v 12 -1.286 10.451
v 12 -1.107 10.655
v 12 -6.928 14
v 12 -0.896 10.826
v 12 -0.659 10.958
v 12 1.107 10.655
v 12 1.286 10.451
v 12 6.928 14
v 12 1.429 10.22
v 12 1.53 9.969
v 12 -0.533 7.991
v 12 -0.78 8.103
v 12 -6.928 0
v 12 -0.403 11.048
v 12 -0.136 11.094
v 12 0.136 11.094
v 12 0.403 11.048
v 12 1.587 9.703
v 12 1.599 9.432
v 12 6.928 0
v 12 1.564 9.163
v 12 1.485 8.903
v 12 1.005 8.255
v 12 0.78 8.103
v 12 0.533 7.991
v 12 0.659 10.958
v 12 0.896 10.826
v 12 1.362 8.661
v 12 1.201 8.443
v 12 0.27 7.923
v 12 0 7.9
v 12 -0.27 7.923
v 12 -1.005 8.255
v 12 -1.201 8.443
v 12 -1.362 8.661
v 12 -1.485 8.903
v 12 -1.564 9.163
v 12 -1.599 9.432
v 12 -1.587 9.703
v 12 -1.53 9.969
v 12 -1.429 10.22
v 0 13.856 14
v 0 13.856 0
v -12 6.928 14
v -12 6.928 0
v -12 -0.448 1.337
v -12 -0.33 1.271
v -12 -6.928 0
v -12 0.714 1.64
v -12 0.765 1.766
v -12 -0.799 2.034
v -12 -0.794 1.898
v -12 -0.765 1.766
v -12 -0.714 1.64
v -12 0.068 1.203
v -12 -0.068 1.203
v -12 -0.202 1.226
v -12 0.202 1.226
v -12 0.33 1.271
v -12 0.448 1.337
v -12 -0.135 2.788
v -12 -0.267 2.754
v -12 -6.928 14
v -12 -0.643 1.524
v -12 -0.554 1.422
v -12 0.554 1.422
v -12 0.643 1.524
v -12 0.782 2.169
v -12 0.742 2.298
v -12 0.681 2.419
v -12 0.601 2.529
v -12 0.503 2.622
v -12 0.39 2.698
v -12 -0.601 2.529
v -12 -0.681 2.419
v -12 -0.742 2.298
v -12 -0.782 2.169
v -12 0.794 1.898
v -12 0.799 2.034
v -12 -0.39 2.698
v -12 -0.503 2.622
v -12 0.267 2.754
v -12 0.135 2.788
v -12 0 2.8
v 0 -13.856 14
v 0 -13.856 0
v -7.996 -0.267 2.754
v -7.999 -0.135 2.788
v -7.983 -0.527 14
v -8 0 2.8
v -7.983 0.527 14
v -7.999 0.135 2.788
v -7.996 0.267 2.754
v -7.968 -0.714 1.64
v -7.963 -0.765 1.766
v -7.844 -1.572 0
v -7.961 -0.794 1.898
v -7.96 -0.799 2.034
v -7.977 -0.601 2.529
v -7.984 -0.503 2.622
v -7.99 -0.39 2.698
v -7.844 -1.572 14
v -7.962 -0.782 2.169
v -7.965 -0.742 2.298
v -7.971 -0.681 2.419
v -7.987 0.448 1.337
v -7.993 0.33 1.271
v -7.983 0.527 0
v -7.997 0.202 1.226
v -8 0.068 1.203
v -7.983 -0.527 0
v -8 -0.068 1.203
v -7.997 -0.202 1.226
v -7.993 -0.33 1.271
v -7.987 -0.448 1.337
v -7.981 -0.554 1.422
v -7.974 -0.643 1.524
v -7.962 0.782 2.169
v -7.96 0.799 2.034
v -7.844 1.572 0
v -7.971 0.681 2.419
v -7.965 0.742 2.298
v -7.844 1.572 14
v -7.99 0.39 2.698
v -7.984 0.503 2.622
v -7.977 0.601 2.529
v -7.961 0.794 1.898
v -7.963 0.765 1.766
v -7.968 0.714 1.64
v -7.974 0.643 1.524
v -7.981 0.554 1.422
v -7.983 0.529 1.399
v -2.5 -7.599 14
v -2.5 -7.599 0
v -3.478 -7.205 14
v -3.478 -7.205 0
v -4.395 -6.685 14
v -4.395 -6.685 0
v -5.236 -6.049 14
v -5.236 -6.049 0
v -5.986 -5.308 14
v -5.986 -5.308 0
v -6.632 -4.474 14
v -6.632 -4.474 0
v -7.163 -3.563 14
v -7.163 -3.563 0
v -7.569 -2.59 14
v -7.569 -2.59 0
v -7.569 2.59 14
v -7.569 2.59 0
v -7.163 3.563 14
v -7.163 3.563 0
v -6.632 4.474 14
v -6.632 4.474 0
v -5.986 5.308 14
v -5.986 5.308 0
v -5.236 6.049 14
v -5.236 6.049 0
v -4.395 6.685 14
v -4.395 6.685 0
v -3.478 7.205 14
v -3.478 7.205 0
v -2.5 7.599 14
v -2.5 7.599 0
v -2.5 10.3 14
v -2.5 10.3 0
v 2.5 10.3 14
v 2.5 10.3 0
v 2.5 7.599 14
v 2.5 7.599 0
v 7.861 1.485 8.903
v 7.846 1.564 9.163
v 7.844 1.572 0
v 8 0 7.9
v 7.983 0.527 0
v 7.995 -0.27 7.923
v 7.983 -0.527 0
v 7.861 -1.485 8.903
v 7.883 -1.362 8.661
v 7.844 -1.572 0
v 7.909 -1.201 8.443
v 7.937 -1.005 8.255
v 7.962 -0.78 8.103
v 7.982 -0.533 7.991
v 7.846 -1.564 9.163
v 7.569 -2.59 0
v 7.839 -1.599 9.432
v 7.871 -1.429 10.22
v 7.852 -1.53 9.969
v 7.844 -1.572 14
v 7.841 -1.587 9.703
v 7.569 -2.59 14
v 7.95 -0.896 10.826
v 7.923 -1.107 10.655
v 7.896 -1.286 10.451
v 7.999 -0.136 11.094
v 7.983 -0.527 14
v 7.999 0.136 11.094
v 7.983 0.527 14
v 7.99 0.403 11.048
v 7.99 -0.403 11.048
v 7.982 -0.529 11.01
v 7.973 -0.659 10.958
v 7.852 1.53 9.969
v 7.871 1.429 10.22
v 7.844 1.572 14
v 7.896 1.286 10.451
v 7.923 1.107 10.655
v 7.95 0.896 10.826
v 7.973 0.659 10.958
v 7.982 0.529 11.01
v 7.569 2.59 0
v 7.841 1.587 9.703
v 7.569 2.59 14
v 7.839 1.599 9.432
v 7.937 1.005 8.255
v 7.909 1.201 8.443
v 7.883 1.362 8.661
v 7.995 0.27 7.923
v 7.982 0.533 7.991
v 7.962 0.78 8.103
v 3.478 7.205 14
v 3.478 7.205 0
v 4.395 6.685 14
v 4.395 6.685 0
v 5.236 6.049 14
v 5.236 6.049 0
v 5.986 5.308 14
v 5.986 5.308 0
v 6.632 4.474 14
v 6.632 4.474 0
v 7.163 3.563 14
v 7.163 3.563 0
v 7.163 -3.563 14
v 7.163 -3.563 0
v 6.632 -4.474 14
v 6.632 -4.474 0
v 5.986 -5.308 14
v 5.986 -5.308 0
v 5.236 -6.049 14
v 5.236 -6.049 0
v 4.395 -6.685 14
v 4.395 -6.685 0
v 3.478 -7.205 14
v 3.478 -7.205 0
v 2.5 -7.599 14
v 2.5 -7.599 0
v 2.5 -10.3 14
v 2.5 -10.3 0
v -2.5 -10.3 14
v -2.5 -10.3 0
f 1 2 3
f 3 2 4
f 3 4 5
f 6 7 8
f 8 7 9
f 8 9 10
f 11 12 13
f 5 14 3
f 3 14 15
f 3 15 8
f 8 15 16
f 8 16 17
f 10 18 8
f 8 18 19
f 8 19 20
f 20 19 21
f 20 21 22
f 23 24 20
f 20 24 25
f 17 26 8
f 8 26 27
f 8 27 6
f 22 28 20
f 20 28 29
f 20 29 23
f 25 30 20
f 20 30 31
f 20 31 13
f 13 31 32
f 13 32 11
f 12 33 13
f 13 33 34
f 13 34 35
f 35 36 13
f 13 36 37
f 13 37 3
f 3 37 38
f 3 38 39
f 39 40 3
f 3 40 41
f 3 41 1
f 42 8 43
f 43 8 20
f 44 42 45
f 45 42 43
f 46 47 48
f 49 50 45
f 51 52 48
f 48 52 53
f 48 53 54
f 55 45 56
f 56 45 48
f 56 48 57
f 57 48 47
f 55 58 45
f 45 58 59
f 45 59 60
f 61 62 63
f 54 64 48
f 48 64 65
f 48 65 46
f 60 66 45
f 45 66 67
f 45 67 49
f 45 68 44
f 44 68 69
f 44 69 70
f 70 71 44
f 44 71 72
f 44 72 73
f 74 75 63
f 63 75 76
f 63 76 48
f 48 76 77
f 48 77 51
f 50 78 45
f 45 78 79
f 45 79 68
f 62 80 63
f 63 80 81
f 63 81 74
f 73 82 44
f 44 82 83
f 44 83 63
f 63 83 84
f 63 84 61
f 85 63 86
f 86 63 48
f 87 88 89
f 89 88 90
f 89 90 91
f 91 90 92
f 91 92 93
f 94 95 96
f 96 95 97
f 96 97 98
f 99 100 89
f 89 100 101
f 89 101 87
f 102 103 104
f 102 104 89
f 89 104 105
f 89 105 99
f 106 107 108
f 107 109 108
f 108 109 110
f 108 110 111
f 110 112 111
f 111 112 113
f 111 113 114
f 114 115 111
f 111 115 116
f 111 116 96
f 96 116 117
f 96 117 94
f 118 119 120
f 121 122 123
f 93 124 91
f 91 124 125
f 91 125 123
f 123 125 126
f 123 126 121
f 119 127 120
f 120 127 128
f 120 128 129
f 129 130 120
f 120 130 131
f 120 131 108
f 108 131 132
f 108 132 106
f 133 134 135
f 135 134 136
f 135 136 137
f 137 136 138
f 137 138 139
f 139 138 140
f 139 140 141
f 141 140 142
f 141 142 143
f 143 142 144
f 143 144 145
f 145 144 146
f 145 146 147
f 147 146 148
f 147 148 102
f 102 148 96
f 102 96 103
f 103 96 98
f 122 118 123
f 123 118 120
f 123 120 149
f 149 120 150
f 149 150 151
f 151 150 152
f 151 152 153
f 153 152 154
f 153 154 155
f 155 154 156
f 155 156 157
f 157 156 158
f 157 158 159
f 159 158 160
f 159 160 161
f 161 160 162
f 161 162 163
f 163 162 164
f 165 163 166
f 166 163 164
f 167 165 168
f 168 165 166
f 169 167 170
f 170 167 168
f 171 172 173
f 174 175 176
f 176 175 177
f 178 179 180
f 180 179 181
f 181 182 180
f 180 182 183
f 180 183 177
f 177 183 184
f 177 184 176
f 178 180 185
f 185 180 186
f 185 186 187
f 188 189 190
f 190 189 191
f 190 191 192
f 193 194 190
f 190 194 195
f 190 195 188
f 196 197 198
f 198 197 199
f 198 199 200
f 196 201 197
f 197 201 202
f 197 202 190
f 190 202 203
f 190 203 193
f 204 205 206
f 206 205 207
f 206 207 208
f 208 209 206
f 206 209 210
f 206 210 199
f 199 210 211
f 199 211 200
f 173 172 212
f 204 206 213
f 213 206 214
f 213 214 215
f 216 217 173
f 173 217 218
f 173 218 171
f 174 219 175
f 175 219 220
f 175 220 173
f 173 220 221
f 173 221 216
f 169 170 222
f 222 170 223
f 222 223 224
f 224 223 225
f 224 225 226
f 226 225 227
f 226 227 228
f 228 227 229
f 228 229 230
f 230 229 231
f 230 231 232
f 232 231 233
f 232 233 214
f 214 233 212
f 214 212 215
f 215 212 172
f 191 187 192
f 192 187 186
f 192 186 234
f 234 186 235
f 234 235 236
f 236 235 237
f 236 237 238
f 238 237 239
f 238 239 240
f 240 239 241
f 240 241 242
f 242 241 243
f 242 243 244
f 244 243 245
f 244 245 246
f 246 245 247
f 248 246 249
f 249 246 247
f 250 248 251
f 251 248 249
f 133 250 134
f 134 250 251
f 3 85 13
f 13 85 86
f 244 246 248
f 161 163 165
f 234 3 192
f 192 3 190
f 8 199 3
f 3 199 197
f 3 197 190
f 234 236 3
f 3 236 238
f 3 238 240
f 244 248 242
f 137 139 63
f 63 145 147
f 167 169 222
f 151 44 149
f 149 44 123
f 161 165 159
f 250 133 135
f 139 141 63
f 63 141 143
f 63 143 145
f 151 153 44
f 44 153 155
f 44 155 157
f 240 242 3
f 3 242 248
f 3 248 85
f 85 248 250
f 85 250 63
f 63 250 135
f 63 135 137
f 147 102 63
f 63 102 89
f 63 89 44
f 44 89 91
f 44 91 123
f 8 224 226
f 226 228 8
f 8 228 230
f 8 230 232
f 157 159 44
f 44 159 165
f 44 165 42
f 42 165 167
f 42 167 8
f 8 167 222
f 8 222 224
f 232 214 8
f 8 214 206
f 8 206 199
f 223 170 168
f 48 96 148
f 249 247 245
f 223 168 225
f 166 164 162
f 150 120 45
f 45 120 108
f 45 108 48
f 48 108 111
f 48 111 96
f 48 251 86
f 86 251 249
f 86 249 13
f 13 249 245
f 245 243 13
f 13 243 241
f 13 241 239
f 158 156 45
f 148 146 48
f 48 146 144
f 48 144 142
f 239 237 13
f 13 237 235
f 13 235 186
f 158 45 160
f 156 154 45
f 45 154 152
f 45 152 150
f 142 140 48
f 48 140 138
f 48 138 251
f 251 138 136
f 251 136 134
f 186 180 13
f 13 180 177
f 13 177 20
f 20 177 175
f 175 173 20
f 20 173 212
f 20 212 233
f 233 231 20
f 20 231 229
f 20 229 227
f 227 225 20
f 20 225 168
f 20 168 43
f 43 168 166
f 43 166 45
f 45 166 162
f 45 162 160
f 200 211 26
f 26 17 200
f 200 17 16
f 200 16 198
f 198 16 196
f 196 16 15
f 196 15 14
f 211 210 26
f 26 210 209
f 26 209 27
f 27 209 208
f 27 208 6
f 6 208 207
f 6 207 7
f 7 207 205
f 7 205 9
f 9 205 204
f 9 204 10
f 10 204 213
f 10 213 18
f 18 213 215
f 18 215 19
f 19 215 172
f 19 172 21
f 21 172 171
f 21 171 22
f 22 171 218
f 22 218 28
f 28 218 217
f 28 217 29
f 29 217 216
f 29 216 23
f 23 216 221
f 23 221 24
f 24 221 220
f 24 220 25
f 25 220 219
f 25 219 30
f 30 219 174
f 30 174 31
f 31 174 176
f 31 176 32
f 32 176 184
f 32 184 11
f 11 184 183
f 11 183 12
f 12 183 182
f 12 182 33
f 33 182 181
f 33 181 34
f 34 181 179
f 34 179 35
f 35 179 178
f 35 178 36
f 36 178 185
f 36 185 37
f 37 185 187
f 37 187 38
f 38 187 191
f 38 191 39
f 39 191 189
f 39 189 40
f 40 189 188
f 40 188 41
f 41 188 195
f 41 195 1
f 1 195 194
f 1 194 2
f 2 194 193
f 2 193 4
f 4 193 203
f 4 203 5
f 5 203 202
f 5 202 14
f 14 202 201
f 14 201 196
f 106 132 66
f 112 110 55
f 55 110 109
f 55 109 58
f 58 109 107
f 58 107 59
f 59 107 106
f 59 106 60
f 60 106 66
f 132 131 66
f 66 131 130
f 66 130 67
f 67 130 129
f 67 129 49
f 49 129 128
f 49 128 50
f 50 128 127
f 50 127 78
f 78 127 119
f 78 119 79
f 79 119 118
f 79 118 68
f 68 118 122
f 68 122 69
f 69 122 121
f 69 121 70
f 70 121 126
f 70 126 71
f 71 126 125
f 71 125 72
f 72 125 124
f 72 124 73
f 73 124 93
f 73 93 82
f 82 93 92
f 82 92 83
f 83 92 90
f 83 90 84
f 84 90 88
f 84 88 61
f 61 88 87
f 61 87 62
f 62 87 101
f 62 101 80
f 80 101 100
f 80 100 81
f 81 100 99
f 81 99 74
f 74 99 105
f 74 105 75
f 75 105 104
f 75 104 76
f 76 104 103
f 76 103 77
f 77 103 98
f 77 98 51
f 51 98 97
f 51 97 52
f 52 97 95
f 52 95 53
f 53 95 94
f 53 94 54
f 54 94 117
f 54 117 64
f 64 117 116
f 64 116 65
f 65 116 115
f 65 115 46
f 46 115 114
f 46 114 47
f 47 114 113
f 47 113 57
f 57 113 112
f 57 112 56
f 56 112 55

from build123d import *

# Parameters (mm, degrees)
BOSS_EXTRUDE1_DEPTH        = 14
M3_CLEARANCE_HOLE1_REACH   = 33.048
M3_CLEARANCE_HOLE1_BORE_R  = 1.6
M2X0_4_TAPPED_HOLE1_REACH  = 33.048
M2X0_4_TAPPED_HOLE1_BORE_R = 0.8


with BuildPart() as part:
    # Sketch1 → Boss-Extrude1 (new body)
    with BuildSketch(Plane.XY):
        Polygon((12, 6.92820323), (0, 13.856406461), (-12, 6.92820323), (-12, -6.92820323), (0, -13.856406461), (12, -6.92820323), align=None)
        with BuildLine():
            ThreePointArc((-2.5, -7.599342077), (-8, 0), (-2.5, 7.599342077))
            Line((-2.5, 7.599342077), (-2.5, 10.3))
            Line((-2.5, 10.3), (2.5, 10.3))
            Line((2.5, 10.3), (2.5, 7.599342077))
            ThreePointArc((2.5, 7.599342077), (6.480740698, 4.69041576), (8, 0))
            ThreePointArc((8, 0), (6.480740698, -4.69041576), (2.5, -7.599342077))
            Line((2.5, -7.599342077), (2.5, -10.3))
            Line((2.5, -10.3), (-2.5, -10.3))
            Line((-2.5, -10.3), (-2.5, -7.599342077))
        make_face(mode=Mode.SUBTRACT)
    extrude(amount=BOSS_EXTRUDE1_DEPTH)

    # M3 Clearance Hole1 bore → M3 Clearance Hole1 (cut, up to next)
    with BuildSketch(Plane(origin=(12, 0, 0), x_dir=(0, 0, -1), z_dir=(1, 0, 0)), mode=Mode.PRIVATE) as m3_clearance_hole1_sk1:
        with Locations((-9.5, 0)):
            Circle(M3_CLEARANCE_HOLE1_BORE_R)
    m3_clearance_hole1_tool1 = extrude(m3_clearance_hole1_sk1.sketch, amount=-M3_CLEARANCE_HOLE1_REACH, mode=Mode.PRIVATE) & part.part
    add(m3_clearance_hole1_tool1.solids().sort_by_distance((12, 0, 9.5))[0], mode=Mode.SUBTRACT)

    # M2x0.4 Tapped Hole1 bore → M2x0.4 Tapped Hole1 (cut, up to next)
    with BuildSketch(Plane.ZY.offset(12), mode=Mode.PRIVATE) as m2x0_4_tapped_hole1_sk1:
        with Locations((2, 0)):
            Circle(M2X0_4_TAPPED_HOLE1_BORE_R)
    m2x0_4_tapped_hole1_tool1 = extrude(m2x0_4_tapped_hole1_sk1.sketch, amount=-M2X0_4_TAPPED_HOLE1_REACH, mode=Mode.PRIVATE) & part.part
    add(m2x0_4_tapped_hole1_tool1.solids().sort_by_distance((-12, 0, 2))[0], mode=Mode.SUBTRACT)


solid = part.part
